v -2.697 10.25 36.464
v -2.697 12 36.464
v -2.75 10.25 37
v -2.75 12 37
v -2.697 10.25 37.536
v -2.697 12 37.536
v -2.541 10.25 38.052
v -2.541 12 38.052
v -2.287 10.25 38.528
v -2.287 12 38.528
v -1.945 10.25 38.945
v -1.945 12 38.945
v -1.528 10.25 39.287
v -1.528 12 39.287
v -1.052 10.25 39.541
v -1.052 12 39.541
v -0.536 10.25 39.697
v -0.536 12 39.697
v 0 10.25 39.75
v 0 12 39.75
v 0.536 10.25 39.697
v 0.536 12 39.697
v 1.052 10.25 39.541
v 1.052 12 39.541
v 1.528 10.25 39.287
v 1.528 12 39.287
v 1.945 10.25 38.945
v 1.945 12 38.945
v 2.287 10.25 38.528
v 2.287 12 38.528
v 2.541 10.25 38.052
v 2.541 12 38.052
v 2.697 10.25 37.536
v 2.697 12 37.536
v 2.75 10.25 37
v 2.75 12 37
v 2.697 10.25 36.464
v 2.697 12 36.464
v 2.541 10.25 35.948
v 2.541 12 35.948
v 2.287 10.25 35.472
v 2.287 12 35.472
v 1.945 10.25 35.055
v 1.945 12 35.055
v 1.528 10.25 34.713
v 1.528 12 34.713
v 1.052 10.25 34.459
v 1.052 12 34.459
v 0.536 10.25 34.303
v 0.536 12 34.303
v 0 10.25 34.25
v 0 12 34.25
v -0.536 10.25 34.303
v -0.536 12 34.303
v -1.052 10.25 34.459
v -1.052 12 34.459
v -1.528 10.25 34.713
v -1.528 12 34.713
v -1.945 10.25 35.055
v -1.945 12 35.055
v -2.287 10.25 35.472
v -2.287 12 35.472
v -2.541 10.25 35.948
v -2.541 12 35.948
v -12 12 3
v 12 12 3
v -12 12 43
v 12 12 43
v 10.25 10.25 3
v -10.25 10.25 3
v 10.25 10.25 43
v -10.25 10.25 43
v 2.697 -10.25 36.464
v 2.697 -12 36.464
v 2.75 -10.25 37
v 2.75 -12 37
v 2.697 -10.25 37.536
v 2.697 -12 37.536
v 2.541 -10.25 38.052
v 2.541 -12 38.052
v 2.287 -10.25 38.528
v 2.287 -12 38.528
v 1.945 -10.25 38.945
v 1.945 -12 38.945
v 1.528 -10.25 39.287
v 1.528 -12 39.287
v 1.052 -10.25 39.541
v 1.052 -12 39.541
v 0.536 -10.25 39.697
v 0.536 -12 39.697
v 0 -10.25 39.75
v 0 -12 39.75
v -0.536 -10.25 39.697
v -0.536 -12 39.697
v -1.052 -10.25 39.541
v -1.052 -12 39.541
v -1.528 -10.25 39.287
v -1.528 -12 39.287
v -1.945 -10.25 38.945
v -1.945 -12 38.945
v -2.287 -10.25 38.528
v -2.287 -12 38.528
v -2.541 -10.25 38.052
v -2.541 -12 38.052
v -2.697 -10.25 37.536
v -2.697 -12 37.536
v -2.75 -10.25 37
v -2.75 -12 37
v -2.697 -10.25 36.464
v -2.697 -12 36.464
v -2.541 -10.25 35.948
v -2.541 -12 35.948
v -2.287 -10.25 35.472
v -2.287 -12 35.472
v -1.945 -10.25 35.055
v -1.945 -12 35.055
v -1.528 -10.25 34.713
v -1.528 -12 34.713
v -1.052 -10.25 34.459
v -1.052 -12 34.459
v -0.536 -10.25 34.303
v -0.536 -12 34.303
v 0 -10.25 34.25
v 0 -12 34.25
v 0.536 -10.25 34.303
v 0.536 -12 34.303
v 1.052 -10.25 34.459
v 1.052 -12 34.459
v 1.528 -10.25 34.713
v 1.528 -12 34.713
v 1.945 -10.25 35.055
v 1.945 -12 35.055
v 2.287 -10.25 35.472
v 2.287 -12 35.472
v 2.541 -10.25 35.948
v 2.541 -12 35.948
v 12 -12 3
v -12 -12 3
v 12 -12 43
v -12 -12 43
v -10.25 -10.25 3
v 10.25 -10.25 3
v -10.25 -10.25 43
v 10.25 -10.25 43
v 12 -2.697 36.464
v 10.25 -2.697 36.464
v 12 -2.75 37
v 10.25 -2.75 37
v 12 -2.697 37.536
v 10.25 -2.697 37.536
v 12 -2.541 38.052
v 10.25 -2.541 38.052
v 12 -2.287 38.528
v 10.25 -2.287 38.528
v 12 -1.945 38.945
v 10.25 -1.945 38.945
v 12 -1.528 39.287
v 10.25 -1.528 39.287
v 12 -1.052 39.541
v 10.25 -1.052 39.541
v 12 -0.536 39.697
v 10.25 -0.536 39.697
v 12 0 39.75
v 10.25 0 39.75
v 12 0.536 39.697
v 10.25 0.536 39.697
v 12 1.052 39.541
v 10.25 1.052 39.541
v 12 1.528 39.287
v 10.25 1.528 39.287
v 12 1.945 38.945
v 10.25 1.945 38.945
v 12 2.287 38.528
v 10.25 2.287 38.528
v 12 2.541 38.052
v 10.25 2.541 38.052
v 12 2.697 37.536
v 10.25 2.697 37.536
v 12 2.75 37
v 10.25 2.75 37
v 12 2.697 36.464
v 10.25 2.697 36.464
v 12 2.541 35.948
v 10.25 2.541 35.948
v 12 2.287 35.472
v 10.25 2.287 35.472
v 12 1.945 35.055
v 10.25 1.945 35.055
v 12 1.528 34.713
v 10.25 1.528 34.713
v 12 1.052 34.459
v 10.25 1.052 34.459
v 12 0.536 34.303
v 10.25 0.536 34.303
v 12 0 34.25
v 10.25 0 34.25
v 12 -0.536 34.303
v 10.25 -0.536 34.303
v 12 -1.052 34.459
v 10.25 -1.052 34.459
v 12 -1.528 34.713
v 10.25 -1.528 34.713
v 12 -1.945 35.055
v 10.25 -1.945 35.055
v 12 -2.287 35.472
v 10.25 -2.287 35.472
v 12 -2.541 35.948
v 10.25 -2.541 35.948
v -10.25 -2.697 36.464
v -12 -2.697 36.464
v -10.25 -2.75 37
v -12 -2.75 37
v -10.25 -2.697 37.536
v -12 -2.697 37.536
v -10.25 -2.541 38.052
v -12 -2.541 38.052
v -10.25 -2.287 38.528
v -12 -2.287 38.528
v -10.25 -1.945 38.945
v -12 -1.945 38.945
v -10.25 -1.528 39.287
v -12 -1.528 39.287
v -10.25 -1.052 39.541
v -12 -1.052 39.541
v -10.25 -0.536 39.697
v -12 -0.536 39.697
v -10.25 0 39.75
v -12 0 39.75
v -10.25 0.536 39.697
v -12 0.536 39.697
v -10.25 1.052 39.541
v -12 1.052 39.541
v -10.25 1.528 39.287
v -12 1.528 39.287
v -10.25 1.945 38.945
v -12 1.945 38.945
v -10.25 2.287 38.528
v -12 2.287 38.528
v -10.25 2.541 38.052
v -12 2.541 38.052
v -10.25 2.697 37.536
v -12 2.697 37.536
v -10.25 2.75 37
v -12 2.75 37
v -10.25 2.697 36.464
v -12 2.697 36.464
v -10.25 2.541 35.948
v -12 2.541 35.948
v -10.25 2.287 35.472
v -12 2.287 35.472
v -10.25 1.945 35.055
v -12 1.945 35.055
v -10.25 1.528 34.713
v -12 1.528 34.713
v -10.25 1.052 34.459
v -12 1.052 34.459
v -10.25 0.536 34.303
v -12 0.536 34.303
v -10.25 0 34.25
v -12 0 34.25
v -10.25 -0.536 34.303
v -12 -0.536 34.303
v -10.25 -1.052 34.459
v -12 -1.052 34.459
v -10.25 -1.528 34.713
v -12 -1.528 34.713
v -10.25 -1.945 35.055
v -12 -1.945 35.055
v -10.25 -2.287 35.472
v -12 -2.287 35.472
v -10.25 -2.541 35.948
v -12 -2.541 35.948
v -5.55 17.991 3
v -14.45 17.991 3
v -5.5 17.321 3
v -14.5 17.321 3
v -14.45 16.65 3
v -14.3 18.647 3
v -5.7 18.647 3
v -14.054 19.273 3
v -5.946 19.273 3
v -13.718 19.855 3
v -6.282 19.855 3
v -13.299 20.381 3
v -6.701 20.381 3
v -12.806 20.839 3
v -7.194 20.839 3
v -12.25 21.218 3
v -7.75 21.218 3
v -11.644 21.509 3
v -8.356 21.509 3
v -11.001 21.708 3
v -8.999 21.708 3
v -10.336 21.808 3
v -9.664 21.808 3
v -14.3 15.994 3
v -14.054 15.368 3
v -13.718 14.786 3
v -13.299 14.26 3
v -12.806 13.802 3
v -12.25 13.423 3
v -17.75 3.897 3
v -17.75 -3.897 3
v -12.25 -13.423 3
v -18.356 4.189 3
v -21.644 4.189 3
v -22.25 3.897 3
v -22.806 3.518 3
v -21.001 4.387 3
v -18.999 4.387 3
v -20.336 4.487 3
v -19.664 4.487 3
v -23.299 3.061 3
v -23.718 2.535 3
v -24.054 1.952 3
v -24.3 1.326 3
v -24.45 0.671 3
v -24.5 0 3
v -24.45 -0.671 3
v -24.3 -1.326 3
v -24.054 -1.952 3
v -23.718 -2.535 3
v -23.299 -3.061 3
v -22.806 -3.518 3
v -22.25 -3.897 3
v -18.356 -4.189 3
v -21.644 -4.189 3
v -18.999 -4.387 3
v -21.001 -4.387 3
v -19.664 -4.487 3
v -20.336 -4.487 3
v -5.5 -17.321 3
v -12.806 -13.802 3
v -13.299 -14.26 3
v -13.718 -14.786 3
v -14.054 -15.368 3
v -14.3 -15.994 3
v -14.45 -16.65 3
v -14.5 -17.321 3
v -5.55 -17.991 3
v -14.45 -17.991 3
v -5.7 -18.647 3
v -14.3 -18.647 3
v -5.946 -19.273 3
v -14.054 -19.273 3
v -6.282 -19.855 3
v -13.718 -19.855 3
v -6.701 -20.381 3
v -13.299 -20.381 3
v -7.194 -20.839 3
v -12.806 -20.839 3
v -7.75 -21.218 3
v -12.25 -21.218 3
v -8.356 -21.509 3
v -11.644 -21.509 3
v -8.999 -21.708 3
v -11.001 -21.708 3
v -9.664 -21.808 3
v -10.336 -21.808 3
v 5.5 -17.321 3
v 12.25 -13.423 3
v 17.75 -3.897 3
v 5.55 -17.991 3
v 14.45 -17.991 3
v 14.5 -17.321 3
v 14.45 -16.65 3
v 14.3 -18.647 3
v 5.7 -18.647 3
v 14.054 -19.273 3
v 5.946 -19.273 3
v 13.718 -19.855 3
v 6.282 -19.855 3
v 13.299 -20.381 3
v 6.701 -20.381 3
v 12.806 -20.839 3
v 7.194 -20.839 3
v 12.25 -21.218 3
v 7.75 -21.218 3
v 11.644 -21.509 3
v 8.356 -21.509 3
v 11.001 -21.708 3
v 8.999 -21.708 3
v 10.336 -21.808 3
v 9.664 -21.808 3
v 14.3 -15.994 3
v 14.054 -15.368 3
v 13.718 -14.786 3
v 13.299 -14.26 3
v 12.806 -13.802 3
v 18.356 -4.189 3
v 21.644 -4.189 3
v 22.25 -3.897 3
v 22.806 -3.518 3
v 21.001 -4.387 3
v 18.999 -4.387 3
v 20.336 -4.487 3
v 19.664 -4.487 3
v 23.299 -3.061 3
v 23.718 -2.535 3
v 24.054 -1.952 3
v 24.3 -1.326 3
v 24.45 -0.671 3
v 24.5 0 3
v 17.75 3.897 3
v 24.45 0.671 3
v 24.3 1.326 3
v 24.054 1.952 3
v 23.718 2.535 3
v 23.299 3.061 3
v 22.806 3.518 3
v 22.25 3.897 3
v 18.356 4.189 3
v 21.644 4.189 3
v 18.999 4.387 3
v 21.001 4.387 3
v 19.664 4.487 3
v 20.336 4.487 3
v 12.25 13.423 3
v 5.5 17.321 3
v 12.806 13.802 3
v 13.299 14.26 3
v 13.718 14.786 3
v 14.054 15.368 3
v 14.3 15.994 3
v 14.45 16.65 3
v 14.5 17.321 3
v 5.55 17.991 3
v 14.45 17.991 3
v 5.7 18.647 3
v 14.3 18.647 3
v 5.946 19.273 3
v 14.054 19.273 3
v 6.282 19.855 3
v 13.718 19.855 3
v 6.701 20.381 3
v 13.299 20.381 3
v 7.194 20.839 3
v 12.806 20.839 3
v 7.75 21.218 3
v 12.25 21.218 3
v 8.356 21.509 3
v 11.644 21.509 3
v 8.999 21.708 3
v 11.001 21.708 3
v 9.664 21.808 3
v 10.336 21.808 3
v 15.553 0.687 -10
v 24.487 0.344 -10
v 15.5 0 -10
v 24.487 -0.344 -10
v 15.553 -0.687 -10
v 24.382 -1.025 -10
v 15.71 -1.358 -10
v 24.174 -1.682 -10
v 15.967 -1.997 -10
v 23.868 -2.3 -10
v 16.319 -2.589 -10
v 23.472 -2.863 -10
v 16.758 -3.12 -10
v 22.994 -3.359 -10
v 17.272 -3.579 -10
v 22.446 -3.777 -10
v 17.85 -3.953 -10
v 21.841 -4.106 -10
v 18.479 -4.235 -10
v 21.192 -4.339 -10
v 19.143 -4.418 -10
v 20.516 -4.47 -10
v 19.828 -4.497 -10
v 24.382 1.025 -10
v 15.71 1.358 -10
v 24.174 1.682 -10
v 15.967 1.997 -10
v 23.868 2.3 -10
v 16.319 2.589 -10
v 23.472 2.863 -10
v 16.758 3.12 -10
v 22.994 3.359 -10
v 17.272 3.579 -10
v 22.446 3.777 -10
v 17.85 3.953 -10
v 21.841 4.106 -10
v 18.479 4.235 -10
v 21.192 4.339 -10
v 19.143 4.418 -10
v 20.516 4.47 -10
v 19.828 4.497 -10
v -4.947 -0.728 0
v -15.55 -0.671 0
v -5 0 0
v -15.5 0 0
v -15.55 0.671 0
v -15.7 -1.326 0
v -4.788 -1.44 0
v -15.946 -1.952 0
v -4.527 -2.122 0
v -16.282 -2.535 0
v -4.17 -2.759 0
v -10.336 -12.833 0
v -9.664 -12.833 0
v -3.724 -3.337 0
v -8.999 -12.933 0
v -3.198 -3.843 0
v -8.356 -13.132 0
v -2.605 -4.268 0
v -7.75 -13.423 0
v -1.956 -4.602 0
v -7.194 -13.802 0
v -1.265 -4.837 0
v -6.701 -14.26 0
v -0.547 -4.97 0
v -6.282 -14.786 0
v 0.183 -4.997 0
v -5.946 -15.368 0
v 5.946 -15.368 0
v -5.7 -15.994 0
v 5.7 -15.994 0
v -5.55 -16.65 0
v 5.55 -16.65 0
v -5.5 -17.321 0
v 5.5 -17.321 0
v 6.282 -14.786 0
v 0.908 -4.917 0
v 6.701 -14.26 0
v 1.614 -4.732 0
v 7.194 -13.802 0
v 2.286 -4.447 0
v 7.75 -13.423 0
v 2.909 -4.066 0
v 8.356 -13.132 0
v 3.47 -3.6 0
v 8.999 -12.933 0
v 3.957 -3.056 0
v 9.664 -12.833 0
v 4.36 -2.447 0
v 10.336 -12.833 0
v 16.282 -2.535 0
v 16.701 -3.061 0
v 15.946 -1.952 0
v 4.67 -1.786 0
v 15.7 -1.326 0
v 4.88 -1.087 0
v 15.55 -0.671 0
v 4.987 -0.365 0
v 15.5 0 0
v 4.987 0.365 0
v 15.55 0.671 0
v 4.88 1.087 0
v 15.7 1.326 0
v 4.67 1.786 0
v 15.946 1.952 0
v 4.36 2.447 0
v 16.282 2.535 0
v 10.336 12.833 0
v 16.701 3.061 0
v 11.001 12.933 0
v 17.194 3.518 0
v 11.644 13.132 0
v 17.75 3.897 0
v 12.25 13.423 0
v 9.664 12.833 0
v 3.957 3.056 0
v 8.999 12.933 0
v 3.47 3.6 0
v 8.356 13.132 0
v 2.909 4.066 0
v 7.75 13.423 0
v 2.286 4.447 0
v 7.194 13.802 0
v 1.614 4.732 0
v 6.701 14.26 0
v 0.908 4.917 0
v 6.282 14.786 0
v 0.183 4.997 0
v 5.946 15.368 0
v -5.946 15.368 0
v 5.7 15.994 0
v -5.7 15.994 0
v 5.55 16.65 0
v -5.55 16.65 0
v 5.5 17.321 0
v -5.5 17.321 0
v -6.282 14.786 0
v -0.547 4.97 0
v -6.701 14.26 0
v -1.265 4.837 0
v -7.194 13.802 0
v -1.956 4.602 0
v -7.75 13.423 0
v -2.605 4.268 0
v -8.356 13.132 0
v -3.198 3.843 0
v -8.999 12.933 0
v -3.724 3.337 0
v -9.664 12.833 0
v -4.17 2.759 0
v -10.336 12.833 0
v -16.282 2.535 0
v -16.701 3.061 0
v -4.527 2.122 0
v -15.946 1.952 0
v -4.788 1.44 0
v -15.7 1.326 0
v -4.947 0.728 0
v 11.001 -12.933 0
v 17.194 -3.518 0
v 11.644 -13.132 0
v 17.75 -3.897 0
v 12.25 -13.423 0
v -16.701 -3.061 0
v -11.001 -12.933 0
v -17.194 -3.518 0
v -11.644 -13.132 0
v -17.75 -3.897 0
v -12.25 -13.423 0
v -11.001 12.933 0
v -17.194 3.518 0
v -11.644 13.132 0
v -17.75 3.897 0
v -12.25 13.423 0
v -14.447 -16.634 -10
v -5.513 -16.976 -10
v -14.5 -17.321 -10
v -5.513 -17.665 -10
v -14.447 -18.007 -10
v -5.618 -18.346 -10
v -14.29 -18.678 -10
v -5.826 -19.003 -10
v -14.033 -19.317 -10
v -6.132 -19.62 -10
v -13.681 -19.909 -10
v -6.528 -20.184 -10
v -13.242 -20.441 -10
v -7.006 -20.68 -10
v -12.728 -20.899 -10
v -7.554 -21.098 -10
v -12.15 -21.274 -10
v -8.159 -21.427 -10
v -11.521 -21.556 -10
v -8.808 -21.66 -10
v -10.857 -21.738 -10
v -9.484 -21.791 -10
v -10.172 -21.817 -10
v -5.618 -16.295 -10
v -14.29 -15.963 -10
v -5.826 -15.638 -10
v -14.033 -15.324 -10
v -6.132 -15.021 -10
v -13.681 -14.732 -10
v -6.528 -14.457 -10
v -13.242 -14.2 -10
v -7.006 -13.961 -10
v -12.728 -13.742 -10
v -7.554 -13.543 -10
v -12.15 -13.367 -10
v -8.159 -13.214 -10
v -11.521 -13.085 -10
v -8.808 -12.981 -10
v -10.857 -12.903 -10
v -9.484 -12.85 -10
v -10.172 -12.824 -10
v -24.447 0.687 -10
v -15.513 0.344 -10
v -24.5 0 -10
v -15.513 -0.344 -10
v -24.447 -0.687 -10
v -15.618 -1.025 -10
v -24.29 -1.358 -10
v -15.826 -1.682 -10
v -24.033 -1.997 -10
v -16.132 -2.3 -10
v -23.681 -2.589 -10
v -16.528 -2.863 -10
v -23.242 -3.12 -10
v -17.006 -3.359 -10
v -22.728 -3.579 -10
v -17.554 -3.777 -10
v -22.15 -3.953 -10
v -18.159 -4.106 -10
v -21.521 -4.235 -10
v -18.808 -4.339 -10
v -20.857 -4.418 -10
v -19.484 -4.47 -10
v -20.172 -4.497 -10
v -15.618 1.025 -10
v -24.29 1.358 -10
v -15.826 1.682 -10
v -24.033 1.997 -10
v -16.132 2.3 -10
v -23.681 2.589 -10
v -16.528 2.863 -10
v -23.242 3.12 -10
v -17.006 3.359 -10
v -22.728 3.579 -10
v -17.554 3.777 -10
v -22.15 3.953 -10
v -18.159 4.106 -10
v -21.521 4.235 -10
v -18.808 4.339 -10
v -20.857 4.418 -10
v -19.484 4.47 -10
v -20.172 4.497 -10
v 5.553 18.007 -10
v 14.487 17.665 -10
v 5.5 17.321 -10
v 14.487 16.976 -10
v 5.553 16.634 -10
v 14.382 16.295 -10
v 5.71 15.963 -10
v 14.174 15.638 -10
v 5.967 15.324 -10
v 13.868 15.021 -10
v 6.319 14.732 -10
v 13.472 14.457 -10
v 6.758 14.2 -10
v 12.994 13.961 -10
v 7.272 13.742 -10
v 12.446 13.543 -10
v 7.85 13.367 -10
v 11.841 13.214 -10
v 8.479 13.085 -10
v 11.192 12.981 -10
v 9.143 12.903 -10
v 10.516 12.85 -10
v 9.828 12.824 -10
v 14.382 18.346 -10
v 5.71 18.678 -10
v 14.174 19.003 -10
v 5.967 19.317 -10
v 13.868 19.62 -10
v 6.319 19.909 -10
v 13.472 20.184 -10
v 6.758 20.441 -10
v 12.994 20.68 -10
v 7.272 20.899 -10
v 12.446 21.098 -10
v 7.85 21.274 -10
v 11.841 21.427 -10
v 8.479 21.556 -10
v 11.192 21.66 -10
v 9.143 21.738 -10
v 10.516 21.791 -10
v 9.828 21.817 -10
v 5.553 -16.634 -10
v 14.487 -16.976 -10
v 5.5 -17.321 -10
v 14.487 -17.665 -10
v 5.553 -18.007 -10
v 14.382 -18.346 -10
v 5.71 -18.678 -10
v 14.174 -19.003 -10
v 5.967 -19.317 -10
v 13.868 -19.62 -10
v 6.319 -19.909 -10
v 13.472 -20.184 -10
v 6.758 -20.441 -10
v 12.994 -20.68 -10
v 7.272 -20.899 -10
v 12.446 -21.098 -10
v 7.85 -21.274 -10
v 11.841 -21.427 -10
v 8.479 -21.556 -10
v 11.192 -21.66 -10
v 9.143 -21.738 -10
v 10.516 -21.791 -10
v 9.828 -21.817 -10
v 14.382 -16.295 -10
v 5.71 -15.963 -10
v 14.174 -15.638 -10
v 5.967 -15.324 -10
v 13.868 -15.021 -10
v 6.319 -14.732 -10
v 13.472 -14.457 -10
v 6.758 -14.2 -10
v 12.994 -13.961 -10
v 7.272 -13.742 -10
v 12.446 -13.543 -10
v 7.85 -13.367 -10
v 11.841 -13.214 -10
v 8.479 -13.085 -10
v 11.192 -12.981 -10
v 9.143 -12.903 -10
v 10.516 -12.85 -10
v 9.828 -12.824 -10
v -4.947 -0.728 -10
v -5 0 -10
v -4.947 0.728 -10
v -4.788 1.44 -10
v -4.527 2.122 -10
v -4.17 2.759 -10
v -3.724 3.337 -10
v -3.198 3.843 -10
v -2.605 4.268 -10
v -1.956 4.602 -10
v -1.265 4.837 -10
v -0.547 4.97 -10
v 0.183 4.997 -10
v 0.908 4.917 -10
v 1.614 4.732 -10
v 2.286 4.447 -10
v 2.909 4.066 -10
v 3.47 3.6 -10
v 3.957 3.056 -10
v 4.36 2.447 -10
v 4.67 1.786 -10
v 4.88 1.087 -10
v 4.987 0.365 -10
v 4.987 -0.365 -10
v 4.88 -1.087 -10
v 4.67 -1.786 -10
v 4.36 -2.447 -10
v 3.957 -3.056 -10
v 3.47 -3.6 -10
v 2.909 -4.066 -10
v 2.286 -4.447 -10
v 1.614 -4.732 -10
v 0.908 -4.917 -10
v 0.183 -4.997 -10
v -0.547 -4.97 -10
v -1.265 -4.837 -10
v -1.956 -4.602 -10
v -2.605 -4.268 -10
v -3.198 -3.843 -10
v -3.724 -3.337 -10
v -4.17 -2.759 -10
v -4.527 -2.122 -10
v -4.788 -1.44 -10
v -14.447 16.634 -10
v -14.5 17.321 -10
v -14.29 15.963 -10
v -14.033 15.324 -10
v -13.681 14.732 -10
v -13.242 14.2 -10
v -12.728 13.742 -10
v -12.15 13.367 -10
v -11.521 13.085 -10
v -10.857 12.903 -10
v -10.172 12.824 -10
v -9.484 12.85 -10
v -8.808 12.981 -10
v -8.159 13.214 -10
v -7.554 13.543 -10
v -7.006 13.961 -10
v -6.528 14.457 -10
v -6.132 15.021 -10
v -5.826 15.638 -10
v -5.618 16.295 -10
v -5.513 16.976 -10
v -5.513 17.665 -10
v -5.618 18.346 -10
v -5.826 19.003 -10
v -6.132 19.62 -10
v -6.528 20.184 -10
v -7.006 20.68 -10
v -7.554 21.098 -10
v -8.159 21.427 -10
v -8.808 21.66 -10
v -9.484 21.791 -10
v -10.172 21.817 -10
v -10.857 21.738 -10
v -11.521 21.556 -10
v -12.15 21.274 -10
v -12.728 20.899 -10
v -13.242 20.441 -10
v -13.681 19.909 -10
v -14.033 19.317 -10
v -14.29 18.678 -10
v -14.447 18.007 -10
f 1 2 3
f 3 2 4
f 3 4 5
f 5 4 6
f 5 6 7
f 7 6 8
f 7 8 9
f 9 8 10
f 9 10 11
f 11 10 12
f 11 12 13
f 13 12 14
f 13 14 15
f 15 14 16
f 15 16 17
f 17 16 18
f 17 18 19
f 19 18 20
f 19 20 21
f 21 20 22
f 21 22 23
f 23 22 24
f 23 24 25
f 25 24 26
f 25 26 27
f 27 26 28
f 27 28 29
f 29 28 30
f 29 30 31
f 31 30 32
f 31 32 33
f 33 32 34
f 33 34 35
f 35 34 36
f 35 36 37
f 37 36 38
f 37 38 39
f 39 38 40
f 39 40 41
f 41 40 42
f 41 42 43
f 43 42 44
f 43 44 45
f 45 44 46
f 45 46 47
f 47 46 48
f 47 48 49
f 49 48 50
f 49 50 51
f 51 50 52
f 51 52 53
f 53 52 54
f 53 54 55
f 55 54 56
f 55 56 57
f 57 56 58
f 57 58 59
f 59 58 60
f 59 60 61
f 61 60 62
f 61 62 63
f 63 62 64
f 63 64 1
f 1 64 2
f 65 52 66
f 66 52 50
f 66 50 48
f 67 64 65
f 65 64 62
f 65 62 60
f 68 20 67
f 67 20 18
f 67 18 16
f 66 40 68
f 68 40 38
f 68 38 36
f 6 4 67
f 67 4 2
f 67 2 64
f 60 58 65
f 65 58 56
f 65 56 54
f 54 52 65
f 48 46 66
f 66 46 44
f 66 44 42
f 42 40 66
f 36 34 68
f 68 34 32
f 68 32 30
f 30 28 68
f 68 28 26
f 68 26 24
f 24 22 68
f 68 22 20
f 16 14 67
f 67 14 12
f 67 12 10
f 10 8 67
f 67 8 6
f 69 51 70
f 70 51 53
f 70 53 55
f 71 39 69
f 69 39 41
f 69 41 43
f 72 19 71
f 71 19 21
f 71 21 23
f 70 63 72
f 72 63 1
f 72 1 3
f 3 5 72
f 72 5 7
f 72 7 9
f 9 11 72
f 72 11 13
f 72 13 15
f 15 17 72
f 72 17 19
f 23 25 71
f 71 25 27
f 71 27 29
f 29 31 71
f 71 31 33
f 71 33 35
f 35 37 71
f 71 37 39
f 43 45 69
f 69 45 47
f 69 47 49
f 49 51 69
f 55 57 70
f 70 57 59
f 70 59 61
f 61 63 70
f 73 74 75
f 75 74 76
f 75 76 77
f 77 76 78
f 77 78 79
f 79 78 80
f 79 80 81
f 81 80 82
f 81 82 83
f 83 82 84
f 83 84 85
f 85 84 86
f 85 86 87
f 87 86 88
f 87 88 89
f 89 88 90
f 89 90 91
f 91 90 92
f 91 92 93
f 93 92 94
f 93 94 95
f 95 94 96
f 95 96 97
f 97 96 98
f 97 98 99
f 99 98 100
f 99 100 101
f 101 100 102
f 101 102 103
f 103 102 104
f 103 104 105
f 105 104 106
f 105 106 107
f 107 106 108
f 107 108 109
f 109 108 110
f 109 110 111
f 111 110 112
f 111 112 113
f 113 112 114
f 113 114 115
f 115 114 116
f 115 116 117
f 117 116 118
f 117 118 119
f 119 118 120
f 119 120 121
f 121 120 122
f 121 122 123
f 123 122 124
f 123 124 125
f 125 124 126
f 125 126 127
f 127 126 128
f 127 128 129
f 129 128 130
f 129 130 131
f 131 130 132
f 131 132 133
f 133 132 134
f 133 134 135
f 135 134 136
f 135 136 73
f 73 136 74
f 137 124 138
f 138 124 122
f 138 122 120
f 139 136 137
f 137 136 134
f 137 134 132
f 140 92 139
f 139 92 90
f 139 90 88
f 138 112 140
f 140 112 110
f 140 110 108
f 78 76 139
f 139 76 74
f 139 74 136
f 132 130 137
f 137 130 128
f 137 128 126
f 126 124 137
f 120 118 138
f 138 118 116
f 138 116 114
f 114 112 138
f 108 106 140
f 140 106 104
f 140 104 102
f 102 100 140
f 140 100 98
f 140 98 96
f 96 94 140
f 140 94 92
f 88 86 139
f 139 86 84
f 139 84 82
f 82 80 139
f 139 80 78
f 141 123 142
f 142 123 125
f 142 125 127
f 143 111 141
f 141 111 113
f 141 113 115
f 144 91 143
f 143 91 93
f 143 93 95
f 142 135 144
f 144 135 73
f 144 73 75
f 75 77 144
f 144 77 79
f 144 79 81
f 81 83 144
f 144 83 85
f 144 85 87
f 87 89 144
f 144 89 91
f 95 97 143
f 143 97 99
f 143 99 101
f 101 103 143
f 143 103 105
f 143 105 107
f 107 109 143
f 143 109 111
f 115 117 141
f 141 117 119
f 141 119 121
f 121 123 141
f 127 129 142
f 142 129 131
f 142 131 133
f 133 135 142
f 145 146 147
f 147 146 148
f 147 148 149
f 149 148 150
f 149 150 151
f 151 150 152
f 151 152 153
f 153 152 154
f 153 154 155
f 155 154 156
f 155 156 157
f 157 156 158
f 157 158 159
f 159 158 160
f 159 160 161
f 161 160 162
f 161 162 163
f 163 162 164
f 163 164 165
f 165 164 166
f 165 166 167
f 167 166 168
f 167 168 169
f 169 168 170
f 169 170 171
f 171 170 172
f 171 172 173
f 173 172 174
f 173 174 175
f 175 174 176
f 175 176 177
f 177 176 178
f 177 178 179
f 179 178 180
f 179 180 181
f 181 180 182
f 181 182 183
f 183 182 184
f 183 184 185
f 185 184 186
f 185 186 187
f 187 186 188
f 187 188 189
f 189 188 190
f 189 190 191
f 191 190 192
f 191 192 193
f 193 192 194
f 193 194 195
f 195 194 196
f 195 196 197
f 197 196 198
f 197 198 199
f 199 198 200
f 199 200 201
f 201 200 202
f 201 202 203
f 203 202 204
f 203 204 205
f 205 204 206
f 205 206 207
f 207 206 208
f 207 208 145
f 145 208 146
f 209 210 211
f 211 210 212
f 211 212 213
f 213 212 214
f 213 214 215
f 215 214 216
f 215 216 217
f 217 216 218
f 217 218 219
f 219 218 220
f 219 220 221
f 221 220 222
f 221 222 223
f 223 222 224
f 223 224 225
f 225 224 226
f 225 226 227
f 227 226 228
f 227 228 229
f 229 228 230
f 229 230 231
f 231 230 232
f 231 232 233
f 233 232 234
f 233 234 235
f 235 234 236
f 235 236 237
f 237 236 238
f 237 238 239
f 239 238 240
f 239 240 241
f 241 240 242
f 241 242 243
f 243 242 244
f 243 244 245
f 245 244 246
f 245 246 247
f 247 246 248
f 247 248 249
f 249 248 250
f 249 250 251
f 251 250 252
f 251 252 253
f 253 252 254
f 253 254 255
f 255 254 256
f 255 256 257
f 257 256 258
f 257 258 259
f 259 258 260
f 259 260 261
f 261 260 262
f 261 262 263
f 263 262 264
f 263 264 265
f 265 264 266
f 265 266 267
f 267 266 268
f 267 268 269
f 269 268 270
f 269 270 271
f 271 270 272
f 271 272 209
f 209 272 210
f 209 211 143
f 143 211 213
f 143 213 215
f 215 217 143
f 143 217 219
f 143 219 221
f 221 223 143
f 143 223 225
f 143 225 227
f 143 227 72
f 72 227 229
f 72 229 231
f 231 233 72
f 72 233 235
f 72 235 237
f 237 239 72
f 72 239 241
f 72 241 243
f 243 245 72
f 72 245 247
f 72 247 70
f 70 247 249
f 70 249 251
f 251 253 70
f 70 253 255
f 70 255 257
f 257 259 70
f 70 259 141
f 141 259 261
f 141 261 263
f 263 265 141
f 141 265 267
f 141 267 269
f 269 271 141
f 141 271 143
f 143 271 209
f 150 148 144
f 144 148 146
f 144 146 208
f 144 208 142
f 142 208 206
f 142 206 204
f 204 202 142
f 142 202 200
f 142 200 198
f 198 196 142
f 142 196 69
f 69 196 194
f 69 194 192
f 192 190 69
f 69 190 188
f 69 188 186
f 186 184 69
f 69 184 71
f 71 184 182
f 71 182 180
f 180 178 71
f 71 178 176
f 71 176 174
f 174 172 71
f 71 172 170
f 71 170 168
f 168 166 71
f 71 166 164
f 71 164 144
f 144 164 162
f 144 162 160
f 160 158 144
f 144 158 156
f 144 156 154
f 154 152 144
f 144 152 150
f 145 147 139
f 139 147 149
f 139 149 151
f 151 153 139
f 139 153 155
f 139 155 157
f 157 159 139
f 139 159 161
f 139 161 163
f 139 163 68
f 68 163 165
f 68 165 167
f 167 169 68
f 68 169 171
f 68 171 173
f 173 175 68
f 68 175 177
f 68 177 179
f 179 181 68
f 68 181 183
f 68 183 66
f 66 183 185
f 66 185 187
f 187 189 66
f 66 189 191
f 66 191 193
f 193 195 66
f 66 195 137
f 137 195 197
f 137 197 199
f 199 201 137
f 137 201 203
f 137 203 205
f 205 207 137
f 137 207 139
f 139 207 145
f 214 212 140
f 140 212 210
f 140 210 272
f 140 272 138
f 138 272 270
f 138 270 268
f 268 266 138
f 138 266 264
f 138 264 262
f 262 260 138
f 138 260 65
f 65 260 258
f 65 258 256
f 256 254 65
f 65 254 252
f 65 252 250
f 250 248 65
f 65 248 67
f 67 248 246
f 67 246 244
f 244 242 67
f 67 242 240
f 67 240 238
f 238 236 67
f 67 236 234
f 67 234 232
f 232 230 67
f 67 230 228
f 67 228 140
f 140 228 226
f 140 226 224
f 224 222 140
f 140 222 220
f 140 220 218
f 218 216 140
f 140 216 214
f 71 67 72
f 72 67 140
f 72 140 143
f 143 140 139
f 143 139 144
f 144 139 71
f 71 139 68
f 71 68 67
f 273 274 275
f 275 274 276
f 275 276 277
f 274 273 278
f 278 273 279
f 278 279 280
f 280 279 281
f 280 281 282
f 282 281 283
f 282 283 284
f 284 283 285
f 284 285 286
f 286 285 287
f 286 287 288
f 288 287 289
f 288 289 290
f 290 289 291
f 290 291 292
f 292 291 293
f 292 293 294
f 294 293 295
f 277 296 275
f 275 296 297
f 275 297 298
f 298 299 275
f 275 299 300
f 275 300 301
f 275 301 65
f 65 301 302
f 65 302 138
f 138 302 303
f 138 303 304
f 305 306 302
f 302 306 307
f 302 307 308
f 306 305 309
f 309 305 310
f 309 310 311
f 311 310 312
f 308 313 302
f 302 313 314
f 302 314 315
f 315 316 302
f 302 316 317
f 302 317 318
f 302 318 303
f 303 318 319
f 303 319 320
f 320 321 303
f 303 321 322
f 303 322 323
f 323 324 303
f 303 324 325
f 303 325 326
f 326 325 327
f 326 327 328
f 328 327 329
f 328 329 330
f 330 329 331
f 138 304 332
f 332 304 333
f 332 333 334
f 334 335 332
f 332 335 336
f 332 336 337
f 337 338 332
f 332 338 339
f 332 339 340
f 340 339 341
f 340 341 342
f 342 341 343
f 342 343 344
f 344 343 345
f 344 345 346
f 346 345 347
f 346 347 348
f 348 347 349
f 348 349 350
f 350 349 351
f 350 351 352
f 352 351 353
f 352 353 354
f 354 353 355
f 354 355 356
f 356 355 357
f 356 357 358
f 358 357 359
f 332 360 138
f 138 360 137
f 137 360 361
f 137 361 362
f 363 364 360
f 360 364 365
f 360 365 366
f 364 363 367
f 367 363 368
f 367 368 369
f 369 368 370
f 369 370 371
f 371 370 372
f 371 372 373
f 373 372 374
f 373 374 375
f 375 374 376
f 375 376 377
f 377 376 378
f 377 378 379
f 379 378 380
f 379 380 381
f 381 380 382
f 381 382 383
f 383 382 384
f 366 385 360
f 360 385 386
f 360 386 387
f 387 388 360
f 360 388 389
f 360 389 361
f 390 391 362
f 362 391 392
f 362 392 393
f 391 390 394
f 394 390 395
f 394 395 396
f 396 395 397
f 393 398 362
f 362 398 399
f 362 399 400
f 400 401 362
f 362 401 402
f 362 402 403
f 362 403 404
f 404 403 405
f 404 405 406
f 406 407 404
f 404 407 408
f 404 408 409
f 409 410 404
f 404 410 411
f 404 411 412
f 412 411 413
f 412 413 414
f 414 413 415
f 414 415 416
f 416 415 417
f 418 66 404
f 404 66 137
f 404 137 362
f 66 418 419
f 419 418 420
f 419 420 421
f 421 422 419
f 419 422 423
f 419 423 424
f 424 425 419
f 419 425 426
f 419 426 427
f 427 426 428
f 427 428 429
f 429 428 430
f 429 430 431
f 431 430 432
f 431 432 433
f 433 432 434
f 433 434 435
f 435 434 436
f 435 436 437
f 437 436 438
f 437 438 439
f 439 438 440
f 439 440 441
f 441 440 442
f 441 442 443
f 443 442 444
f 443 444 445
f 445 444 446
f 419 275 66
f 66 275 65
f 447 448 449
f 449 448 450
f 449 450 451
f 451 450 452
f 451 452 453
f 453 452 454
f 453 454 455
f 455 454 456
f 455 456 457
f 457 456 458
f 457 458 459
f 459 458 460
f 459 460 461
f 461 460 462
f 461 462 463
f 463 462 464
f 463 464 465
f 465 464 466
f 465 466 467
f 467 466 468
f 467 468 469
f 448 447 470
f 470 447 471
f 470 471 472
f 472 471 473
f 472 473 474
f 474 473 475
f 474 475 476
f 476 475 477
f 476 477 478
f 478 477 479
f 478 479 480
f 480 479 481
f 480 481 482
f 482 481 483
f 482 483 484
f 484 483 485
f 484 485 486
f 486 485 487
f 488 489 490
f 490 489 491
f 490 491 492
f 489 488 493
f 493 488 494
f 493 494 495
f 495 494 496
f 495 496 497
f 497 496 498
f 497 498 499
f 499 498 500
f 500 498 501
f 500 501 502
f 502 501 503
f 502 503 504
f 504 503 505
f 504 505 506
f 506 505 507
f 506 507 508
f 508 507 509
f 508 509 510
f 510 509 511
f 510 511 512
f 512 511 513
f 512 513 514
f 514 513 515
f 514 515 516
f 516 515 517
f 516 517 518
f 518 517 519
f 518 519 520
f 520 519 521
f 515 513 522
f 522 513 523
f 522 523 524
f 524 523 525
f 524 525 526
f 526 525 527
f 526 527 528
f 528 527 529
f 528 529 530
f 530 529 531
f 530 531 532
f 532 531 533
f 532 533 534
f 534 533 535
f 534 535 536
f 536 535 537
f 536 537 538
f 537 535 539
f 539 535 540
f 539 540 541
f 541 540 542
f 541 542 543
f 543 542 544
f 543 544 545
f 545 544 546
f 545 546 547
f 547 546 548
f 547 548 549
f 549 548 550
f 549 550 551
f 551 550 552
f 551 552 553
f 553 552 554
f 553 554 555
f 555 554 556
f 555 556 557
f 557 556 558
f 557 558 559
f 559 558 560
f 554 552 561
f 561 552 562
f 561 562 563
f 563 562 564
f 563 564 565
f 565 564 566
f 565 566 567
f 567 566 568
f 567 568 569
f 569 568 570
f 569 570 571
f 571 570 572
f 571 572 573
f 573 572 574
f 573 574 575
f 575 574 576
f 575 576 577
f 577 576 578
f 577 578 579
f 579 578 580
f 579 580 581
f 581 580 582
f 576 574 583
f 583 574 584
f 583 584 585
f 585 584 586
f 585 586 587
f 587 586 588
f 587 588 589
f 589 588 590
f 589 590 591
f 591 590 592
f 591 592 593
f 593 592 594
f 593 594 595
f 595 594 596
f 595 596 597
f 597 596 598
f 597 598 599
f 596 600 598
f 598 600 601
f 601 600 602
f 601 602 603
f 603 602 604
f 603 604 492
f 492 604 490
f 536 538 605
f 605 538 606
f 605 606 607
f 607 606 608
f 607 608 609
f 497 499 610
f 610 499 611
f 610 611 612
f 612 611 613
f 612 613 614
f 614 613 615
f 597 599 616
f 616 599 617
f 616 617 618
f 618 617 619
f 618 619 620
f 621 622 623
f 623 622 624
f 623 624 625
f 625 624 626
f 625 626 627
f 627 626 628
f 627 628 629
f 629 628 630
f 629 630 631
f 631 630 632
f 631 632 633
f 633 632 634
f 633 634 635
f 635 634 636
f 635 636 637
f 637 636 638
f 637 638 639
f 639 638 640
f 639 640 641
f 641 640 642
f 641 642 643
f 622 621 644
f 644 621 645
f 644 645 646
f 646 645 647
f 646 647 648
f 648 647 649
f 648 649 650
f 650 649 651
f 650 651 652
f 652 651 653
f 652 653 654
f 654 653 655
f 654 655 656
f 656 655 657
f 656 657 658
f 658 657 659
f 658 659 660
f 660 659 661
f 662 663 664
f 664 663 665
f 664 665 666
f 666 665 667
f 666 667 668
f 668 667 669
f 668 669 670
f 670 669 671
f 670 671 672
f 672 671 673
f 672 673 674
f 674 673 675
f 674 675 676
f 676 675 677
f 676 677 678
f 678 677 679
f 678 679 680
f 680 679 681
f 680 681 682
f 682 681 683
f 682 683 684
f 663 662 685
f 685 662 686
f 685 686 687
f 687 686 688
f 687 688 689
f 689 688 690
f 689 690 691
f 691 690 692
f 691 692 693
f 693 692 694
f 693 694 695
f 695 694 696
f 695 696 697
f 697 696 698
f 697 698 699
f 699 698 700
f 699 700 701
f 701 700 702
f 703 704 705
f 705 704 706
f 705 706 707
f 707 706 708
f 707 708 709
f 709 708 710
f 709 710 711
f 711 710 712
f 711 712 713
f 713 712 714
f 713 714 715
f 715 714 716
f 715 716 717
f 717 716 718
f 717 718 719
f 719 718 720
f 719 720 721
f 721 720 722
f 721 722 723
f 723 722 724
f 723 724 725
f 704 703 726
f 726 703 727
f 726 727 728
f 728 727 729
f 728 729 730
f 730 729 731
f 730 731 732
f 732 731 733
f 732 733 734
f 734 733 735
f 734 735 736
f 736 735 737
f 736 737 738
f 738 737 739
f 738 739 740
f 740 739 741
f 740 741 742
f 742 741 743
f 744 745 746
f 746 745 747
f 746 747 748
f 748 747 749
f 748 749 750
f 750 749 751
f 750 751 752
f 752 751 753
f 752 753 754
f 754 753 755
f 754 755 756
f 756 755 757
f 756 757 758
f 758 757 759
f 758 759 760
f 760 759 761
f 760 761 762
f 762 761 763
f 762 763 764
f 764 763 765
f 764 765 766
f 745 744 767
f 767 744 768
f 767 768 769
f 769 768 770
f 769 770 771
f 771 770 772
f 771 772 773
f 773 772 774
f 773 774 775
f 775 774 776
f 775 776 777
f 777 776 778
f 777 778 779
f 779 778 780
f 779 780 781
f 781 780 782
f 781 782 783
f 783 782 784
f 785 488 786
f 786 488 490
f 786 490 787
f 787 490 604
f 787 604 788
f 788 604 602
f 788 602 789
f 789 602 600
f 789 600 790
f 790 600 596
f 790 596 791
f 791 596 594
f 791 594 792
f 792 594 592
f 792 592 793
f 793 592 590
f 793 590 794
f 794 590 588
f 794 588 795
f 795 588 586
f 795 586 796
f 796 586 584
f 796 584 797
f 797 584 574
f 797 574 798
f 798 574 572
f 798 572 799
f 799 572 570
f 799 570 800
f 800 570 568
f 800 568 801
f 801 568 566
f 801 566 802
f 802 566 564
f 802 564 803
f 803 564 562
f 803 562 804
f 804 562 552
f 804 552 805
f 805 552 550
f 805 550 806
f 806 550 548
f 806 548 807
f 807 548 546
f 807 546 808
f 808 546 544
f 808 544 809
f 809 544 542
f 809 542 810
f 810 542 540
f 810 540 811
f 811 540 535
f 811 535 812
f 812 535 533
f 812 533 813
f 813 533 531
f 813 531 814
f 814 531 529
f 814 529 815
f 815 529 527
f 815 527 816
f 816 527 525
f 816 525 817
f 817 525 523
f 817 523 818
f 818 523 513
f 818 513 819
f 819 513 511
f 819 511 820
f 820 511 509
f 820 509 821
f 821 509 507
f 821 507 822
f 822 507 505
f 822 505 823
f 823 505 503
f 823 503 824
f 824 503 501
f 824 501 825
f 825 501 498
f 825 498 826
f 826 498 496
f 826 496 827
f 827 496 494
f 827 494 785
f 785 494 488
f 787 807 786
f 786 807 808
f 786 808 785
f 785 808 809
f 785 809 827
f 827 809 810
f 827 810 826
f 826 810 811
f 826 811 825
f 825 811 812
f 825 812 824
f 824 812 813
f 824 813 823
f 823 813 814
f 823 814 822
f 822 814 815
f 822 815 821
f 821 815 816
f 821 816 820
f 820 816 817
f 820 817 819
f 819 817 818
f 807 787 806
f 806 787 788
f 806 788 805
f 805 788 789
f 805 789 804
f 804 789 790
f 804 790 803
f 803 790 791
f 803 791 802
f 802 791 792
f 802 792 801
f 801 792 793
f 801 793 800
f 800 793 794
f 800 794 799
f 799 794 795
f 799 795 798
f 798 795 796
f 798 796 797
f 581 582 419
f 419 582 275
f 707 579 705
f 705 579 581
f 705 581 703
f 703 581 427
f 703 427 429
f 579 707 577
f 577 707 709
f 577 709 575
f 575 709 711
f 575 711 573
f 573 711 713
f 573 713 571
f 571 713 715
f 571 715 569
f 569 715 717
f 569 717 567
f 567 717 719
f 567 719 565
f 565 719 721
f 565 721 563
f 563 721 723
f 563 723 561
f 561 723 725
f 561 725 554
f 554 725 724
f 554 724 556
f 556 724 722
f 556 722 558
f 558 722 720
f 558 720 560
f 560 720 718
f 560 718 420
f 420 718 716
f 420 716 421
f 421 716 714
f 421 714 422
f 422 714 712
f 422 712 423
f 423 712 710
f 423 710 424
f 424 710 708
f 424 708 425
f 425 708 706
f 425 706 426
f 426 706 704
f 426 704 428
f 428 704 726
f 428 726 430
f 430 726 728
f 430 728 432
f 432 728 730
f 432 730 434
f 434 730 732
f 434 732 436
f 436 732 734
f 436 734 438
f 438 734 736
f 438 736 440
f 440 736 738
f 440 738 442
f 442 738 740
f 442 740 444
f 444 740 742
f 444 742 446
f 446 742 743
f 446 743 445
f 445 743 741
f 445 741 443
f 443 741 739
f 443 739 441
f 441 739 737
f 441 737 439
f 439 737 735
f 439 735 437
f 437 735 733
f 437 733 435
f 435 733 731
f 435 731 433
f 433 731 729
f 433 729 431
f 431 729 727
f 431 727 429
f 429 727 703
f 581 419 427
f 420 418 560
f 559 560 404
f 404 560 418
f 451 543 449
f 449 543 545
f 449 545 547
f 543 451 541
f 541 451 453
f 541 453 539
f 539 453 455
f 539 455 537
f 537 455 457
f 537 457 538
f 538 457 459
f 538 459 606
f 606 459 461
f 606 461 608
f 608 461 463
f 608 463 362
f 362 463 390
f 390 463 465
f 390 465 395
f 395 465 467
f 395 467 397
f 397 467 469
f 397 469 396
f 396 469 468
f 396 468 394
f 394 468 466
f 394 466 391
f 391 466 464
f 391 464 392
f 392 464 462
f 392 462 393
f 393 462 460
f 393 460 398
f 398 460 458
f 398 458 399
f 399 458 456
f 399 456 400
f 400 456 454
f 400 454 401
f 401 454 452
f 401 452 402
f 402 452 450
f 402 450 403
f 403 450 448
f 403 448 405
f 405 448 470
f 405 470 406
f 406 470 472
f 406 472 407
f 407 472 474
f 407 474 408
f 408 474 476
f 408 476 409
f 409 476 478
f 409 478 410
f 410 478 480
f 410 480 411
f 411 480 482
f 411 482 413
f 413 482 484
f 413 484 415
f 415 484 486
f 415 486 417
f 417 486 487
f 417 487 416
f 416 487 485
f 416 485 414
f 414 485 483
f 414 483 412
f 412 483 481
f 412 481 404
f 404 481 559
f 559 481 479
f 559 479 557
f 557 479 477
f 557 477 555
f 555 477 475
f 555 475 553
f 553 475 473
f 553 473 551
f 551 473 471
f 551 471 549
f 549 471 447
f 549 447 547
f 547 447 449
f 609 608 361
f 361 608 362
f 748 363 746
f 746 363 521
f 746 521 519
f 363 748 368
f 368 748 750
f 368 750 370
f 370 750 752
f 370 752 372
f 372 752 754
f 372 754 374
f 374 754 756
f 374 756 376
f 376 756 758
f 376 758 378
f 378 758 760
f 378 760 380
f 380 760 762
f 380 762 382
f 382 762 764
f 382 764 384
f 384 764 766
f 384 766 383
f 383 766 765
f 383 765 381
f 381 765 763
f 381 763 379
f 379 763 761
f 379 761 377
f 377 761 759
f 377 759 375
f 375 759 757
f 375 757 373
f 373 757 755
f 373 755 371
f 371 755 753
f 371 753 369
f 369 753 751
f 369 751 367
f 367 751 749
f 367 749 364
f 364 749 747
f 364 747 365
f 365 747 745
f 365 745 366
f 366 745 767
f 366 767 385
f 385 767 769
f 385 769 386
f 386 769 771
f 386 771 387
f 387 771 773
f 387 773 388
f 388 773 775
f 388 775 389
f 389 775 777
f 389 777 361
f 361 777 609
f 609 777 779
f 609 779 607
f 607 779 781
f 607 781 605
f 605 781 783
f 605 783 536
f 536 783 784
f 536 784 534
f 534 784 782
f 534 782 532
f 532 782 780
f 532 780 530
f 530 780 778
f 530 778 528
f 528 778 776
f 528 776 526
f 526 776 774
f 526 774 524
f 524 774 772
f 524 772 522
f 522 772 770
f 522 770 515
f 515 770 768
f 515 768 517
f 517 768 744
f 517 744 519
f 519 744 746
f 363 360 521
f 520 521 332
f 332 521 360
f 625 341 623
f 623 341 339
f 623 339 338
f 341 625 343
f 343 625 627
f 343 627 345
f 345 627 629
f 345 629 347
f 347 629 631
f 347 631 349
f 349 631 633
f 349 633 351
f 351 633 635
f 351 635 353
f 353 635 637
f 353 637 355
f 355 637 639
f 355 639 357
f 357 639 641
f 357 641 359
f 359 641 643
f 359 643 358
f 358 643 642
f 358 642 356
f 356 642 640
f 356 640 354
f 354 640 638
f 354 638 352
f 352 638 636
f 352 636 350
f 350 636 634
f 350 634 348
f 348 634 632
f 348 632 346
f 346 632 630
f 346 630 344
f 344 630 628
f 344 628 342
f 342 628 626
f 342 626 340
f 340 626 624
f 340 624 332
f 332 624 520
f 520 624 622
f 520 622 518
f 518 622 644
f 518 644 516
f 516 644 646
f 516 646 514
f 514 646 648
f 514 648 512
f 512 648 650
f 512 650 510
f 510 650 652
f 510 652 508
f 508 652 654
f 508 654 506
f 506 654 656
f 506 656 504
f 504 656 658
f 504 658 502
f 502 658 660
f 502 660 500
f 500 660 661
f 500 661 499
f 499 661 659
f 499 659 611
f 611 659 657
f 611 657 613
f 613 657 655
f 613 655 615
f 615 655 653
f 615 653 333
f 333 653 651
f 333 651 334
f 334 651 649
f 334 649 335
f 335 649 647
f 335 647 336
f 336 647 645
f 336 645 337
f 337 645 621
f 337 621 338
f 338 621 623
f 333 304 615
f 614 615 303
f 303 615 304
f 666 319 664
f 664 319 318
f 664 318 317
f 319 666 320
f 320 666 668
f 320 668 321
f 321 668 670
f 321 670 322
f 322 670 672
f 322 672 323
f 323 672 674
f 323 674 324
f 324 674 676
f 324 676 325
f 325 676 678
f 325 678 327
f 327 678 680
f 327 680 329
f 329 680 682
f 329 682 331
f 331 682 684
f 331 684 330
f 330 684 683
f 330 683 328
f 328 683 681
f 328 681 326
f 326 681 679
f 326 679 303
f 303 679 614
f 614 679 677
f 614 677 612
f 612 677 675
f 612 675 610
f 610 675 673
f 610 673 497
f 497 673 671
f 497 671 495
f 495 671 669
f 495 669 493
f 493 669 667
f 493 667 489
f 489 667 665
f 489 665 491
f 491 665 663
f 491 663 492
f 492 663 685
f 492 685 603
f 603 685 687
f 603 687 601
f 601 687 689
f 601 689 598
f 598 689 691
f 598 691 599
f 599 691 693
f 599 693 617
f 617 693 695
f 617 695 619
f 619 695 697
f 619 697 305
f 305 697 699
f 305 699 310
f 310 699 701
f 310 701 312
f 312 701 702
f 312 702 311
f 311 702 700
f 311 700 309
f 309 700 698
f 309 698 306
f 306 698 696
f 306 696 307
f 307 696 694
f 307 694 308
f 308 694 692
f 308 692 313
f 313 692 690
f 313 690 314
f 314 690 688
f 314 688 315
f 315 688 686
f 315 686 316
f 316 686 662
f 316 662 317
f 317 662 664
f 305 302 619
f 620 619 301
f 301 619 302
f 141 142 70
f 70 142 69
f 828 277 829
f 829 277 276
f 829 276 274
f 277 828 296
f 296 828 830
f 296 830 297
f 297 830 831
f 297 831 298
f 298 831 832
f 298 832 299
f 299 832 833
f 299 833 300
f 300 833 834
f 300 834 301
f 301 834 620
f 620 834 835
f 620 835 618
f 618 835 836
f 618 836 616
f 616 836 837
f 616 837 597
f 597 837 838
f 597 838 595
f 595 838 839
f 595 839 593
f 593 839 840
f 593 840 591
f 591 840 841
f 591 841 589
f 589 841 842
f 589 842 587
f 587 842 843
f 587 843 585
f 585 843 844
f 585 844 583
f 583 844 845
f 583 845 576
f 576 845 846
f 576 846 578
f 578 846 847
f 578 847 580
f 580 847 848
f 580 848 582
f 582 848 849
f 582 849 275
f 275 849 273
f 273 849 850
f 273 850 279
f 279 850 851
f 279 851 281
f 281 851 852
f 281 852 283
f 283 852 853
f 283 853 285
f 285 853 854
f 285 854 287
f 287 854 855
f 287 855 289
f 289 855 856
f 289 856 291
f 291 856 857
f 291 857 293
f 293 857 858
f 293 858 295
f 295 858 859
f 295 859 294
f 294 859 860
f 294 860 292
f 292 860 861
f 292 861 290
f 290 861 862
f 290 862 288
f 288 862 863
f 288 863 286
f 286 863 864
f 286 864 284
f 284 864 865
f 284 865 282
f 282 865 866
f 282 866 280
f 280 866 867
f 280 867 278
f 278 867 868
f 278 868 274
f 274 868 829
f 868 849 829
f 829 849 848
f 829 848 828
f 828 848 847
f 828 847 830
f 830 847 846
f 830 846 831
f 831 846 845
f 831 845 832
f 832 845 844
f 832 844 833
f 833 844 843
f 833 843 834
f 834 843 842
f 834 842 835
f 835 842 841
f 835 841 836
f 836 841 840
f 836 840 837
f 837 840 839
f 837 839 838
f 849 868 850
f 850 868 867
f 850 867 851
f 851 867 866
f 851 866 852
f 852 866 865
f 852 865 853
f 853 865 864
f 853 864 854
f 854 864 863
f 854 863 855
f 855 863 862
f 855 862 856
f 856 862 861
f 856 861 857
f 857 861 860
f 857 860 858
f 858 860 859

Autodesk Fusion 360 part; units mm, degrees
sketch "Sketch1" plane through (0, 0, 0) normal (0, 0, 1) x (1, 0, 0)
  circle A0 centre (0, 0) radius 5
  line L0 (10, 17.3205) -> (-10, 17.3205)
  line L1 (-10, 17.3205) -> (-20, 0)
  line L2 (-20, 0) -> (-10, -17.3205)
  line L3 (-10, -17.3205) -> (10, -17.3205)
  line L4 (10, -17.3205) -> (20, 0)
  line L5 (20, 0) -> (10, 17.3205)
  circle A1 centre (10, 17.3205) radius 4.5
  circle A2 centre (20, 0) radius 4.5
  circle A3 centre (10, -17.3205) radius 4.5
  circle A4 centre (-10, -17.3205) radius 4.5
  circle A5 centre (-20, 0) radius 4.5
  circle A6 centre (-10, 17.3205) radius 4.5
  dimension "d1" = 10
  dimension "d2" = 20
  dimension "d3" = 9
  dimension "d4" = 9
  dimension "d5" = 9
  dimension "d6" = 9
  dimension "d7" = 9
  dimension "d8" = 9
extrude "Extrude1" add sketch "Sketch1" against normal blind 10 contours A0 | L0 L1 A6 | L0 L1 A6 | L0 L5 A1 | L0 L5 A1 | L1 L2 A5 | L1 L2 A5 | L4 L5 A2 | L4 L5 A2 | L2 L3 A4 | L2 L3 A4 | L3 L4 A3 | L3 L4 A3 makes body 1 at (-5.5224, 17.7686, -3.3333) makes body 2 at (14.4776, -16.8725, -3.3333) makes body 3 at (14.4776, 17.7686, -3.3333) makes body 4 at (-15.5224, 0.4481, -3.3333) makes body 5 at (-5.5224, -16.8725, -3.3333) makes body 6 at (24.4944, -0.2243, -6.6667) makes body 7 at (4.9938, -0.2492, -6.6667)
extrude "Extrude2" add sketch "Sketch1" along normal blind 3 contours A0 | L0 L1 A6 | L0 L1 A6 | L0 L1 L2 L3 L4 L5 A1 A2 A3 A4 A5 A6 | L0 L5 A1 | L0 L5 A1 | L1 L2 A5 | L1 L2 A5 | L4 L5 A2 | L4 L5 A2 | L2 L3 A4 | L2 L3 A4 | L3 L4 A3 | L3 L4 A3 bodies 1 7 2 3 4 5 6
sketch "Sketch2" plane through (0, 0, 3) normal (0, 0, 1) x (1, 0, 0)
  line L0 (10.25, -10.25) -> (-10.25, -10.25)
  line L1 (-10.25, -10.25) -> (-10.25, 10.25)
  line L2 (-10.25, 10.25) -> (10.25, 10.25)
  line L3 (10.25, 10.25) -> (10.25, -10.25)
  line L4 (10.25, -10.25) -> (-10.25, 10.25) construction
  line L5 (-10.25, -10.25) -> (10.25, 10.25) construction
  line L6 (12, -12) -> (-12, -12)
  line L7 (-12, -12) -> (-12, 12)
  line L8 (-12, 12) -> (12, 12)
  line L9 (12, 12) -> (12, -12)
  line L10 (12, -12) -> (-12, 12) construction
  line L11 (-12, -12) -> (12, 12) construction
  arc A0 (-5.5, 17.3205) -> (-12.25, 13.4234) centre (-10, 17.3205) ccw
  line L12 (-12.25, 13.4234) -> (-17.75, 3.8971)
  arc A1 (-17.75, 3.8971) -> (-17.75, -3.8971) centre (-20, 0) ccw
  line L13 (-17.75, -3.8971) -> (-12.25, -13.4234)
  arc A2 (-12.25, -13.4234) -> (-5.5, -17.3205) centre (-10, -17.3205) ccw
  line L14 (-5.5, -17.3205) -> (5.5, -17.3205)
  arc A3 (5.5, -17.3205) -> (12.25, -13.4234) centre (10, -17.3205) ccw
  line L15 (12.25, -13.4234) -> (17.75, -3.8971)
  arc A4 (17.75, -3.8971) -> (17.75, 3.8971) centre (20, 0) ccw
  line L16 (17.75, 3.8971) -> (12.25, 13.4234)
  arc A5 (12.25, 13.4234) -> (5.5, 17.3205) centre (10, 17.3205) ccw
  line L17 (5.5, 17.3205) -> (-5.5, 17.3205)
  dimension "d13" = 20.5
  dimension "d14" = 20.5
  dimension "d15" = 24
  dimension "d16" = 24
extrude "Extrude3" add sketch "Sketch2" along normal blind 40 contours L6 L7 L8 L9 bodies 1
sketch "Sketch3" plane through (12, 0, 0) normal (1, 0, 0) x (0, 1, 0)
  line L0 (-12, 3) -> (12, 3)
  line L1 (12, 3) -> (12, 43)
  line L2 (12, 43) -> (-12, 43)
  line L3 (-12, 43) -> (-12, 3)
  circle A0 centre (0, 37) radius 2.75
  dimension "d19" = 5.5
extrude "Extrude4" cut sketch "Sketch3" against normal blind 31 contours A0 bodies 1
pattern_circular "C-Pattern1" count 4 over 360 about axis through (0, 0, 1.75) along (0, 0, 1) of "Extrude4"
